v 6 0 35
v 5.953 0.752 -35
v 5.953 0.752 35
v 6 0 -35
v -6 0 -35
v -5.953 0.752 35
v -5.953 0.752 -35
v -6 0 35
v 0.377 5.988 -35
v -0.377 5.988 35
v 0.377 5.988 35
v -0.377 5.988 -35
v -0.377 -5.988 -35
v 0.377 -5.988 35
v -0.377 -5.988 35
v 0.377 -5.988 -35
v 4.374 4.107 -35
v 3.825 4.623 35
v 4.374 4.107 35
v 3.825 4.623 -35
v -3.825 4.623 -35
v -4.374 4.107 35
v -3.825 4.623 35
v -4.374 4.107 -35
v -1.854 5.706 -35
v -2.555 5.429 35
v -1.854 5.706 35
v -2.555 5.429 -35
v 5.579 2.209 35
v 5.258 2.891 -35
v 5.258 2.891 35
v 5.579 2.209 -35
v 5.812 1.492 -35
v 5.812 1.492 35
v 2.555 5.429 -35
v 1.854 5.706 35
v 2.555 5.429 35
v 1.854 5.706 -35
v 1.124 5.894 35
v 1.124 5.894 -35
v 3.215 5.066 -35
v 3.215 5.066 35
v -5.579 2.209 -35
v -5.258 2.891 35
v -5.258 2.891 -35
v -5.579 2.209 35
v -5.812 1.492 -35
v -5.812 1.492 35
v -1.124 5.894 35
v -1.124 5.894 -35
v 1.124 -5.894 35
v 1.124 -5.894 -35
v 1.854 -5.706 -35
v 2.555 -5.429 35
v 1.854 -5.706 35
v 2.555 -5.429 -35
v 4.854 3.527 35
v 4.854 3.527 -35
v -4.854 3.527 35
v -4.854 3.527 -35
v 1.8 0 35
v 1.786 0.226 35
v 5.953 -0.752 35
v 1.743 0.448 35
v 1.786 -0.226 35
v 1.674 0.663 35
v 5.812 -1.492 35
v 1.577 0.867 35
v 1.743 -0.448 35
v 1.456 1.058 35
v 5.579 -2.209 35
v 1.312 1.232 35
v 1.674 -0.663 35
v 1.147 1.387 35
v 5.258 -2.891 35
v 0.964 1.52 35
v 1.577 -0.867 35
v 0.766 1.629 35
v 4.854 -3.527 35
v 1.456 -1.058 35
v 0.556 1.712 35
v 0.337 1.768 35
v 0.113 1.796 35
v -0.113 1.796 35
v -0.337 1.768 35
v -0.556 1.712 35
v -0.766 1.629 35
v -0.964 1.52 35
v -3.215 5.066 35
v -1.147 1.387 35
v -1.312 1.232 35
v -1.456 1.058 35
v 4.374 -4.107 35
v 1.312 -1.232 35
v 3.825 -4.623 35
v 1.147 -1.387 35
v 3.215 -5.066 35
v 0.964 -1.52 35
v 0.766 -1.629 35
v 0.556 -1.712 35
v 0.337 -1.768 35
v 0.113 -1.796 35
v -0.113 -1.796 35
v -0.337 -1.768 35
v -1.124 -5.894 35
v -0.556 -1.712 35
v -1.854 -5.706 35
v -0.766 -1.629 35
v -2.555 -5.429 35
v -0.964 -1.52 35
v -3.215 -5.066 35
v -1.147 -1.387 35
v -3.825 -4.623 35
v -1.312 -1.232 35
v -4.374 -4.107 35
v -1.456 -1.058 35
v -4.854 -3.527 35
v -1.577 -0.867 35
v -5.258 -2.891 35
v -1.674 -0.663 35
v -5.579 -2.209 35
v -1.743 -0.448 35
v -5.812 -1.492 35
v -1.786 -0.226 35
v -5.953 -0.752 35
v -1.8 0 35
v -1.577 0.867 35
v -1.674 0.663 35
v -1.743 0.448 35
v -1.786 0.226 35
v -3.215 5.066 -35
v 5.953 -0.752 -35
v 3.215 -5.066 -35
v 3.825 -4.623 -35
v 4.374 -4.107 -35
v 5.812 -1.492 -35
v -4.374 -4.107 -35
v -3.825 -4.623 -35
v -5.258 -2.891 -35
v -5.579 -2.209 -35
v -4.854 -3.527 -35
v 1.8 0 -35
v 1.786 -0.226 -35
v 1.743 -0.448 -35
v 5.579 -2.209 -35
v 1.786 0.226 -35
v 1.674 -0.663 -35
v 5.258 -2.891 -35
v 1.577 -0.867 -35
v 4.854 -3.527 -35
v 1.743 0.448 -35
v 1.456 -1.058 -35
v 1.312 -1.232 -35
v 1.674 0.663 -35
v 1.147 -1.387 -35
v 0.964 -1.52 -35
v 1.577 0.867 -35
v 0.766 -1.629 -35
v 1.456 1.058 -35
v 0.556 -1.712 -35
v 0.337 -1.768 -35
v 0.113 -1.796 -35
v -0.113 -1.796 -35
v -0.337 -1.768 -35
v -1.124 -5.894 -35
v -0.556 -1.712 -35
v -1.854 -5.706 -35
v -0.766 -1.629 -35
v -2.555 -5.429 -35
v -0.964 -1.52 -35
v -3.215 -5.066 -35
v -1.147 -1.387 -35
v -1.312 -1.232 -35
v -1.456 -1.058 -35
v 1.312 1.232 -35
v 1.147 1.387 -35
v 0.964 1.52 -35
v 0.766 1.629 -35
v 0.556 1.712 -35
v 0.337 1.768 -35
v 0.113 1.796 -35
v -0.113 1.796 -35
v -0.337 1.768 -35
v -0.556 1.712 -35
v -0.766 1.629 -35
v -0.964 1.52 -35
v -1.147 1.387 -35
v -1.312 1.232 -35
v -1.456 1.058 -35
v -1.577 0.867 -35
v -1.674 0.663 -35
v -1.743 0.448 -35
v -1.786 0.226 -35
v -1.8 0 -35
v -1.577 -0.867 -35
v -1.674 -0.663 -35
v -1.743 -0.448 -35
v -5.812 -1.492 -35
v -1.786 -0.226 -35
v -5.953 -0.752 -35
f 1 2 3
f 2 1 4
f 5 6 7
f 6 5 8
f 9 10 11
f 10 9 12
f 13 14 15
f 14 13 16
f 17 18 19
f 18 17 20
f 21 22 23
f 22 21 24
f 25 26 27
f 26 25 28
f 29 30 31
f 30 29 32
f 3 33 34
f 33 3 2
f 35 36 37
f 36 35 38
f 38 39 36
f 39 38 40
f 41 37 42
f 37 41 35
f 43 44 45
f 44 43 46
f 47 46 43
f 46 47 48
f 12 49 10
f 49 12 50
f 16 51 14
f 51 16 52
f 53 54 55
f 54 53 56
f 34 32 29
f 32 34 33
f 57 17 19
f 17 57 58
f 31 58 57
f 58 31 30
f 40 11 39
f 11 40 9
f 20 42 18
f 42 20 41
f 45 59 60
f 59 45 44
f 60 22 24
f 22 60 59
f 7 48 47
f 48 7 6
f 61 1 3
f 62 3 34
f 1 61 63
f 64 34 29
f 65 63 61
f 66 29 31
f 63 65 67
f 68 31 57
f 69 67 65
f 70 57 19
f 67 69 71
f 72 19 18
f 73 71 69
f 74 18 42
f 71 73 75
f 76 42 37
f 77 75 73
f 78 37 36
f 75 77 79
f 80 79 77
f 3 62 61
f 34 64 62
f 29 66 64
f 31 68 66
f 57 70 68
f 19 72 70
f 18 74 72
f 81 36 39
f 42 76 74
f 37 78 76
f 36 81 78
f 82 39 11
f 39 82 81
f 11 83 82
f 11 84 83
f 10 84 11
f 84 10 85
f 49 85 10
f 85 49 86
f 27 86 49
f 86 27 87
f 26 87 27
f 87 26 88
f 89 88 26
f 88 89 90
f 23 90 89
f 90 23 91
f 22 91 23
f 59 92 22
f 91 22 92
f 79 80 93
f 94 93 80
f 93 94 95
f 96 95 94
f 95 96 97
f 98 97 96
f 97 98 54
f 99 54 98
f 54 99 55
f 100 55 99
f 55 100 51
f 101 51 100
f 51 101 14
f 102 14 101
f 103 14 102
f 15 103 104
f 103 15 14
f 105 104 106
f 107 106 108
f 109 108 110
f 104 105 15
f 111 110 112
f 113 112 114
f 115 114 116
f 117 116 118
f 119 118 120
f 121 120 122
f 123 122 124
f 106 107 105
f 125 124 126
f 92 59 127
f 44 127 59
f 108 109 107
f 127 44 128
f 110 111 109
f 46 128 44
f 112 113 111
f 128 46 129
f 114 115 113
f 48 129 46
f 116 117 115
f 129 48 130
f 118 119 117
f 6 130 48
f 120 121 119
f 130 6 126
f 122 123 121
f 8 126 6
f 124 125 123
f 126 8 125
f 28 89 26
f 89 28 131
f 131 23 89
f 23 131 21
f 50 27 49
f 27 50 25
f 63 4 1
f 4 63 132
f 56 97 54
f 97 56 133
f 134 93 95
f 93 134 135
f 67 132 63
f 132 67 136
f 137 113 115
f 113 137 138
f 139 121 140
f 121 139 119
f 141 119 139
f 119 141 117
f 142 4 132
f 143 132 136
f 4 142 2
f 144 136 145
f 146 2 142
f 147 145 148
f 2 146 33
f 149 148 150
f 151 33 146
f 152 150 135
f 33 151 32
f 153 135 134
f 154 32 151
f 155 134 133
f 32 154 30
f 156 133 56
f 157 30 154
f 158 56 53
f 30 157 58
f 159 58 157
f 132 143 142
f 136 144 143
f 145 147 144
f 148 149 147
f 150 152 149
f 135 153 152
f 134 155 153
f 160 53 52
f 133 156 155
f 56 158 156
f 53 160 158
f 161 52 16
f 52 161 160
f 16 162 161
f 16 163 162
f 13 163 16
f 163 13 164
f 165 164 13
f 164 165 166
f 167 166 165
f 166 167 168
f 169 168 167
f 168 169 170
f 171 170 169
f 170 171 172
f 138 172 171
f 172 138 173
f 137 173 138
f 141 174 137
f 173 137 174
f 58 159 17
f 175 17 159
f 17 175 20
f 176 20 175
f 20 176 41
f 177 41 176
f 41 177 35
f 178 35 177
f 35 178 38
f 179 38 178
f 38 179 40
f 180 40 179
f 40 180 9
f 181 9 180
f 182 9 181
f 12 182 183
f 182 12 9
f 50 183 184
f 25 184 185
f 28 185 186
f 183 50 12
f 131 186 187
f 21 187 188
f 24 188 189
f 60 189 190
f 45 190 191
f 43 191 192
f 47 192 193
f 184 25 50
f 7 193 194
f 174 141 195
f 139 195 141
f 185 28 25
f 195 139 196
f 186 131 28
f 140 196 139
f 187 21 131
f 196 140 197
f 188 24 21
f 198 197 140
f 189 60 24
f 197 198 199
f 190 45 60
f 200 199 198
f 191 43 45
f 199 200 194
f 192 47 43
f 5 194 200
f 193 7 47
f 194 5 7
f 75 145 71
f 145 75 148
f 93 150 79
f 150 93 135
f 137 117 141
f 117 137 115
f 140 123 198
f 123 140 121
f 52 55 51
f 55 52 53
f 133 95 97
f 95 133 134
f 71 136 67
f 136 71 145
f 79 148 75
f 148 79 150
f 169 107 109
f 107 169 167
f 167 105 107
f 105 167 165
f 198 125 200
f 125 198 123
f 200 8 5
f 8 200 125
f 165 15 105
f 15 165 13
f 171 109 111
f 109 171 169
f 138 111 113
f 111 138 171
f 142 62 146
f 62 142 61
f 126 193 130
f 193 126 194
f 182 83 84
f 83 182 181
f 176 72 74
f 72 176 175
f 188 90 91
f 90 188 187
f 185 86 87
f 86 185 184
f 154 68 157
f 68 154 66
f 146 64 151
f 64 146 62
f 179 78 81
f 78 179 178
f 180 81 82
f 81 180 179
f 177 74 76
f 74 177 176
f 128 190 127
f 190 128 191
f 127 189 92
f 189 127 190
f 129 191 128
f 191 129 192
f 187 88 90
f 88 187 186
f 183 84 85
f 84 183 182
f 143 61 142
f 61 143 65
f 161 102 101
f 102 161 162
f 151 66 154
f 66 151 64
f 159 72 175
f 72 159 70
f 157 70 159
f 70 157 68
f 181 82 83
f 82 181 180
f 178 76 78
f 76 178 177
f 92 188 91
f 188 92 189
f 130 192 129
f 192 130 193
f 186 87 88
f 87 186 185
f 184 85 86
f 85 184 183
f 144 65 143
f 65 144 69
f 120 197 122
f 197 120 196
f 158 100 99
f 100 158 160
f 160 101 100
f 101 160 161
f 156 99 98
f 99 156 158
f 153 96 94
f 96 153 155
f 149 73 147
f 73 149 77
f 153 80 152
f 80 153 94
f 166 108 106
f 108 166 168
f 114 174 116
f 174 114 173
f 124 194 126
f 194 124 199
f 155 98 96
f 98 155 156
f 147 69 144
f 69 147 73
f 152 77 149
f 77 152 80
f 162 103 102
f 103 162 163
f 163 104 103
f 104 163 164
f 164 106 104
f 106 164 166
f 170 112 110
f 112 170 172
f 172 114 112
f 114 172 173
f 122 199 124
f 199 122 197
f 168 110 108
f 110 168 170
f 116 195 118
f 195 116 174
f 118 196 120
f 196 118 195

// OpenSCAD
$fn = 50;


difference() {
	union() {
		translate(v = [0, 0, -35.0000000000]) {
			cylinder(h = 70, r = 6.0000000000);
		}
	}
	union() {
		translate(v = [0, 0, -100.0000000000]) {
			cylinder(h = 200, r = 1.8000000000);
		}
	}
}
